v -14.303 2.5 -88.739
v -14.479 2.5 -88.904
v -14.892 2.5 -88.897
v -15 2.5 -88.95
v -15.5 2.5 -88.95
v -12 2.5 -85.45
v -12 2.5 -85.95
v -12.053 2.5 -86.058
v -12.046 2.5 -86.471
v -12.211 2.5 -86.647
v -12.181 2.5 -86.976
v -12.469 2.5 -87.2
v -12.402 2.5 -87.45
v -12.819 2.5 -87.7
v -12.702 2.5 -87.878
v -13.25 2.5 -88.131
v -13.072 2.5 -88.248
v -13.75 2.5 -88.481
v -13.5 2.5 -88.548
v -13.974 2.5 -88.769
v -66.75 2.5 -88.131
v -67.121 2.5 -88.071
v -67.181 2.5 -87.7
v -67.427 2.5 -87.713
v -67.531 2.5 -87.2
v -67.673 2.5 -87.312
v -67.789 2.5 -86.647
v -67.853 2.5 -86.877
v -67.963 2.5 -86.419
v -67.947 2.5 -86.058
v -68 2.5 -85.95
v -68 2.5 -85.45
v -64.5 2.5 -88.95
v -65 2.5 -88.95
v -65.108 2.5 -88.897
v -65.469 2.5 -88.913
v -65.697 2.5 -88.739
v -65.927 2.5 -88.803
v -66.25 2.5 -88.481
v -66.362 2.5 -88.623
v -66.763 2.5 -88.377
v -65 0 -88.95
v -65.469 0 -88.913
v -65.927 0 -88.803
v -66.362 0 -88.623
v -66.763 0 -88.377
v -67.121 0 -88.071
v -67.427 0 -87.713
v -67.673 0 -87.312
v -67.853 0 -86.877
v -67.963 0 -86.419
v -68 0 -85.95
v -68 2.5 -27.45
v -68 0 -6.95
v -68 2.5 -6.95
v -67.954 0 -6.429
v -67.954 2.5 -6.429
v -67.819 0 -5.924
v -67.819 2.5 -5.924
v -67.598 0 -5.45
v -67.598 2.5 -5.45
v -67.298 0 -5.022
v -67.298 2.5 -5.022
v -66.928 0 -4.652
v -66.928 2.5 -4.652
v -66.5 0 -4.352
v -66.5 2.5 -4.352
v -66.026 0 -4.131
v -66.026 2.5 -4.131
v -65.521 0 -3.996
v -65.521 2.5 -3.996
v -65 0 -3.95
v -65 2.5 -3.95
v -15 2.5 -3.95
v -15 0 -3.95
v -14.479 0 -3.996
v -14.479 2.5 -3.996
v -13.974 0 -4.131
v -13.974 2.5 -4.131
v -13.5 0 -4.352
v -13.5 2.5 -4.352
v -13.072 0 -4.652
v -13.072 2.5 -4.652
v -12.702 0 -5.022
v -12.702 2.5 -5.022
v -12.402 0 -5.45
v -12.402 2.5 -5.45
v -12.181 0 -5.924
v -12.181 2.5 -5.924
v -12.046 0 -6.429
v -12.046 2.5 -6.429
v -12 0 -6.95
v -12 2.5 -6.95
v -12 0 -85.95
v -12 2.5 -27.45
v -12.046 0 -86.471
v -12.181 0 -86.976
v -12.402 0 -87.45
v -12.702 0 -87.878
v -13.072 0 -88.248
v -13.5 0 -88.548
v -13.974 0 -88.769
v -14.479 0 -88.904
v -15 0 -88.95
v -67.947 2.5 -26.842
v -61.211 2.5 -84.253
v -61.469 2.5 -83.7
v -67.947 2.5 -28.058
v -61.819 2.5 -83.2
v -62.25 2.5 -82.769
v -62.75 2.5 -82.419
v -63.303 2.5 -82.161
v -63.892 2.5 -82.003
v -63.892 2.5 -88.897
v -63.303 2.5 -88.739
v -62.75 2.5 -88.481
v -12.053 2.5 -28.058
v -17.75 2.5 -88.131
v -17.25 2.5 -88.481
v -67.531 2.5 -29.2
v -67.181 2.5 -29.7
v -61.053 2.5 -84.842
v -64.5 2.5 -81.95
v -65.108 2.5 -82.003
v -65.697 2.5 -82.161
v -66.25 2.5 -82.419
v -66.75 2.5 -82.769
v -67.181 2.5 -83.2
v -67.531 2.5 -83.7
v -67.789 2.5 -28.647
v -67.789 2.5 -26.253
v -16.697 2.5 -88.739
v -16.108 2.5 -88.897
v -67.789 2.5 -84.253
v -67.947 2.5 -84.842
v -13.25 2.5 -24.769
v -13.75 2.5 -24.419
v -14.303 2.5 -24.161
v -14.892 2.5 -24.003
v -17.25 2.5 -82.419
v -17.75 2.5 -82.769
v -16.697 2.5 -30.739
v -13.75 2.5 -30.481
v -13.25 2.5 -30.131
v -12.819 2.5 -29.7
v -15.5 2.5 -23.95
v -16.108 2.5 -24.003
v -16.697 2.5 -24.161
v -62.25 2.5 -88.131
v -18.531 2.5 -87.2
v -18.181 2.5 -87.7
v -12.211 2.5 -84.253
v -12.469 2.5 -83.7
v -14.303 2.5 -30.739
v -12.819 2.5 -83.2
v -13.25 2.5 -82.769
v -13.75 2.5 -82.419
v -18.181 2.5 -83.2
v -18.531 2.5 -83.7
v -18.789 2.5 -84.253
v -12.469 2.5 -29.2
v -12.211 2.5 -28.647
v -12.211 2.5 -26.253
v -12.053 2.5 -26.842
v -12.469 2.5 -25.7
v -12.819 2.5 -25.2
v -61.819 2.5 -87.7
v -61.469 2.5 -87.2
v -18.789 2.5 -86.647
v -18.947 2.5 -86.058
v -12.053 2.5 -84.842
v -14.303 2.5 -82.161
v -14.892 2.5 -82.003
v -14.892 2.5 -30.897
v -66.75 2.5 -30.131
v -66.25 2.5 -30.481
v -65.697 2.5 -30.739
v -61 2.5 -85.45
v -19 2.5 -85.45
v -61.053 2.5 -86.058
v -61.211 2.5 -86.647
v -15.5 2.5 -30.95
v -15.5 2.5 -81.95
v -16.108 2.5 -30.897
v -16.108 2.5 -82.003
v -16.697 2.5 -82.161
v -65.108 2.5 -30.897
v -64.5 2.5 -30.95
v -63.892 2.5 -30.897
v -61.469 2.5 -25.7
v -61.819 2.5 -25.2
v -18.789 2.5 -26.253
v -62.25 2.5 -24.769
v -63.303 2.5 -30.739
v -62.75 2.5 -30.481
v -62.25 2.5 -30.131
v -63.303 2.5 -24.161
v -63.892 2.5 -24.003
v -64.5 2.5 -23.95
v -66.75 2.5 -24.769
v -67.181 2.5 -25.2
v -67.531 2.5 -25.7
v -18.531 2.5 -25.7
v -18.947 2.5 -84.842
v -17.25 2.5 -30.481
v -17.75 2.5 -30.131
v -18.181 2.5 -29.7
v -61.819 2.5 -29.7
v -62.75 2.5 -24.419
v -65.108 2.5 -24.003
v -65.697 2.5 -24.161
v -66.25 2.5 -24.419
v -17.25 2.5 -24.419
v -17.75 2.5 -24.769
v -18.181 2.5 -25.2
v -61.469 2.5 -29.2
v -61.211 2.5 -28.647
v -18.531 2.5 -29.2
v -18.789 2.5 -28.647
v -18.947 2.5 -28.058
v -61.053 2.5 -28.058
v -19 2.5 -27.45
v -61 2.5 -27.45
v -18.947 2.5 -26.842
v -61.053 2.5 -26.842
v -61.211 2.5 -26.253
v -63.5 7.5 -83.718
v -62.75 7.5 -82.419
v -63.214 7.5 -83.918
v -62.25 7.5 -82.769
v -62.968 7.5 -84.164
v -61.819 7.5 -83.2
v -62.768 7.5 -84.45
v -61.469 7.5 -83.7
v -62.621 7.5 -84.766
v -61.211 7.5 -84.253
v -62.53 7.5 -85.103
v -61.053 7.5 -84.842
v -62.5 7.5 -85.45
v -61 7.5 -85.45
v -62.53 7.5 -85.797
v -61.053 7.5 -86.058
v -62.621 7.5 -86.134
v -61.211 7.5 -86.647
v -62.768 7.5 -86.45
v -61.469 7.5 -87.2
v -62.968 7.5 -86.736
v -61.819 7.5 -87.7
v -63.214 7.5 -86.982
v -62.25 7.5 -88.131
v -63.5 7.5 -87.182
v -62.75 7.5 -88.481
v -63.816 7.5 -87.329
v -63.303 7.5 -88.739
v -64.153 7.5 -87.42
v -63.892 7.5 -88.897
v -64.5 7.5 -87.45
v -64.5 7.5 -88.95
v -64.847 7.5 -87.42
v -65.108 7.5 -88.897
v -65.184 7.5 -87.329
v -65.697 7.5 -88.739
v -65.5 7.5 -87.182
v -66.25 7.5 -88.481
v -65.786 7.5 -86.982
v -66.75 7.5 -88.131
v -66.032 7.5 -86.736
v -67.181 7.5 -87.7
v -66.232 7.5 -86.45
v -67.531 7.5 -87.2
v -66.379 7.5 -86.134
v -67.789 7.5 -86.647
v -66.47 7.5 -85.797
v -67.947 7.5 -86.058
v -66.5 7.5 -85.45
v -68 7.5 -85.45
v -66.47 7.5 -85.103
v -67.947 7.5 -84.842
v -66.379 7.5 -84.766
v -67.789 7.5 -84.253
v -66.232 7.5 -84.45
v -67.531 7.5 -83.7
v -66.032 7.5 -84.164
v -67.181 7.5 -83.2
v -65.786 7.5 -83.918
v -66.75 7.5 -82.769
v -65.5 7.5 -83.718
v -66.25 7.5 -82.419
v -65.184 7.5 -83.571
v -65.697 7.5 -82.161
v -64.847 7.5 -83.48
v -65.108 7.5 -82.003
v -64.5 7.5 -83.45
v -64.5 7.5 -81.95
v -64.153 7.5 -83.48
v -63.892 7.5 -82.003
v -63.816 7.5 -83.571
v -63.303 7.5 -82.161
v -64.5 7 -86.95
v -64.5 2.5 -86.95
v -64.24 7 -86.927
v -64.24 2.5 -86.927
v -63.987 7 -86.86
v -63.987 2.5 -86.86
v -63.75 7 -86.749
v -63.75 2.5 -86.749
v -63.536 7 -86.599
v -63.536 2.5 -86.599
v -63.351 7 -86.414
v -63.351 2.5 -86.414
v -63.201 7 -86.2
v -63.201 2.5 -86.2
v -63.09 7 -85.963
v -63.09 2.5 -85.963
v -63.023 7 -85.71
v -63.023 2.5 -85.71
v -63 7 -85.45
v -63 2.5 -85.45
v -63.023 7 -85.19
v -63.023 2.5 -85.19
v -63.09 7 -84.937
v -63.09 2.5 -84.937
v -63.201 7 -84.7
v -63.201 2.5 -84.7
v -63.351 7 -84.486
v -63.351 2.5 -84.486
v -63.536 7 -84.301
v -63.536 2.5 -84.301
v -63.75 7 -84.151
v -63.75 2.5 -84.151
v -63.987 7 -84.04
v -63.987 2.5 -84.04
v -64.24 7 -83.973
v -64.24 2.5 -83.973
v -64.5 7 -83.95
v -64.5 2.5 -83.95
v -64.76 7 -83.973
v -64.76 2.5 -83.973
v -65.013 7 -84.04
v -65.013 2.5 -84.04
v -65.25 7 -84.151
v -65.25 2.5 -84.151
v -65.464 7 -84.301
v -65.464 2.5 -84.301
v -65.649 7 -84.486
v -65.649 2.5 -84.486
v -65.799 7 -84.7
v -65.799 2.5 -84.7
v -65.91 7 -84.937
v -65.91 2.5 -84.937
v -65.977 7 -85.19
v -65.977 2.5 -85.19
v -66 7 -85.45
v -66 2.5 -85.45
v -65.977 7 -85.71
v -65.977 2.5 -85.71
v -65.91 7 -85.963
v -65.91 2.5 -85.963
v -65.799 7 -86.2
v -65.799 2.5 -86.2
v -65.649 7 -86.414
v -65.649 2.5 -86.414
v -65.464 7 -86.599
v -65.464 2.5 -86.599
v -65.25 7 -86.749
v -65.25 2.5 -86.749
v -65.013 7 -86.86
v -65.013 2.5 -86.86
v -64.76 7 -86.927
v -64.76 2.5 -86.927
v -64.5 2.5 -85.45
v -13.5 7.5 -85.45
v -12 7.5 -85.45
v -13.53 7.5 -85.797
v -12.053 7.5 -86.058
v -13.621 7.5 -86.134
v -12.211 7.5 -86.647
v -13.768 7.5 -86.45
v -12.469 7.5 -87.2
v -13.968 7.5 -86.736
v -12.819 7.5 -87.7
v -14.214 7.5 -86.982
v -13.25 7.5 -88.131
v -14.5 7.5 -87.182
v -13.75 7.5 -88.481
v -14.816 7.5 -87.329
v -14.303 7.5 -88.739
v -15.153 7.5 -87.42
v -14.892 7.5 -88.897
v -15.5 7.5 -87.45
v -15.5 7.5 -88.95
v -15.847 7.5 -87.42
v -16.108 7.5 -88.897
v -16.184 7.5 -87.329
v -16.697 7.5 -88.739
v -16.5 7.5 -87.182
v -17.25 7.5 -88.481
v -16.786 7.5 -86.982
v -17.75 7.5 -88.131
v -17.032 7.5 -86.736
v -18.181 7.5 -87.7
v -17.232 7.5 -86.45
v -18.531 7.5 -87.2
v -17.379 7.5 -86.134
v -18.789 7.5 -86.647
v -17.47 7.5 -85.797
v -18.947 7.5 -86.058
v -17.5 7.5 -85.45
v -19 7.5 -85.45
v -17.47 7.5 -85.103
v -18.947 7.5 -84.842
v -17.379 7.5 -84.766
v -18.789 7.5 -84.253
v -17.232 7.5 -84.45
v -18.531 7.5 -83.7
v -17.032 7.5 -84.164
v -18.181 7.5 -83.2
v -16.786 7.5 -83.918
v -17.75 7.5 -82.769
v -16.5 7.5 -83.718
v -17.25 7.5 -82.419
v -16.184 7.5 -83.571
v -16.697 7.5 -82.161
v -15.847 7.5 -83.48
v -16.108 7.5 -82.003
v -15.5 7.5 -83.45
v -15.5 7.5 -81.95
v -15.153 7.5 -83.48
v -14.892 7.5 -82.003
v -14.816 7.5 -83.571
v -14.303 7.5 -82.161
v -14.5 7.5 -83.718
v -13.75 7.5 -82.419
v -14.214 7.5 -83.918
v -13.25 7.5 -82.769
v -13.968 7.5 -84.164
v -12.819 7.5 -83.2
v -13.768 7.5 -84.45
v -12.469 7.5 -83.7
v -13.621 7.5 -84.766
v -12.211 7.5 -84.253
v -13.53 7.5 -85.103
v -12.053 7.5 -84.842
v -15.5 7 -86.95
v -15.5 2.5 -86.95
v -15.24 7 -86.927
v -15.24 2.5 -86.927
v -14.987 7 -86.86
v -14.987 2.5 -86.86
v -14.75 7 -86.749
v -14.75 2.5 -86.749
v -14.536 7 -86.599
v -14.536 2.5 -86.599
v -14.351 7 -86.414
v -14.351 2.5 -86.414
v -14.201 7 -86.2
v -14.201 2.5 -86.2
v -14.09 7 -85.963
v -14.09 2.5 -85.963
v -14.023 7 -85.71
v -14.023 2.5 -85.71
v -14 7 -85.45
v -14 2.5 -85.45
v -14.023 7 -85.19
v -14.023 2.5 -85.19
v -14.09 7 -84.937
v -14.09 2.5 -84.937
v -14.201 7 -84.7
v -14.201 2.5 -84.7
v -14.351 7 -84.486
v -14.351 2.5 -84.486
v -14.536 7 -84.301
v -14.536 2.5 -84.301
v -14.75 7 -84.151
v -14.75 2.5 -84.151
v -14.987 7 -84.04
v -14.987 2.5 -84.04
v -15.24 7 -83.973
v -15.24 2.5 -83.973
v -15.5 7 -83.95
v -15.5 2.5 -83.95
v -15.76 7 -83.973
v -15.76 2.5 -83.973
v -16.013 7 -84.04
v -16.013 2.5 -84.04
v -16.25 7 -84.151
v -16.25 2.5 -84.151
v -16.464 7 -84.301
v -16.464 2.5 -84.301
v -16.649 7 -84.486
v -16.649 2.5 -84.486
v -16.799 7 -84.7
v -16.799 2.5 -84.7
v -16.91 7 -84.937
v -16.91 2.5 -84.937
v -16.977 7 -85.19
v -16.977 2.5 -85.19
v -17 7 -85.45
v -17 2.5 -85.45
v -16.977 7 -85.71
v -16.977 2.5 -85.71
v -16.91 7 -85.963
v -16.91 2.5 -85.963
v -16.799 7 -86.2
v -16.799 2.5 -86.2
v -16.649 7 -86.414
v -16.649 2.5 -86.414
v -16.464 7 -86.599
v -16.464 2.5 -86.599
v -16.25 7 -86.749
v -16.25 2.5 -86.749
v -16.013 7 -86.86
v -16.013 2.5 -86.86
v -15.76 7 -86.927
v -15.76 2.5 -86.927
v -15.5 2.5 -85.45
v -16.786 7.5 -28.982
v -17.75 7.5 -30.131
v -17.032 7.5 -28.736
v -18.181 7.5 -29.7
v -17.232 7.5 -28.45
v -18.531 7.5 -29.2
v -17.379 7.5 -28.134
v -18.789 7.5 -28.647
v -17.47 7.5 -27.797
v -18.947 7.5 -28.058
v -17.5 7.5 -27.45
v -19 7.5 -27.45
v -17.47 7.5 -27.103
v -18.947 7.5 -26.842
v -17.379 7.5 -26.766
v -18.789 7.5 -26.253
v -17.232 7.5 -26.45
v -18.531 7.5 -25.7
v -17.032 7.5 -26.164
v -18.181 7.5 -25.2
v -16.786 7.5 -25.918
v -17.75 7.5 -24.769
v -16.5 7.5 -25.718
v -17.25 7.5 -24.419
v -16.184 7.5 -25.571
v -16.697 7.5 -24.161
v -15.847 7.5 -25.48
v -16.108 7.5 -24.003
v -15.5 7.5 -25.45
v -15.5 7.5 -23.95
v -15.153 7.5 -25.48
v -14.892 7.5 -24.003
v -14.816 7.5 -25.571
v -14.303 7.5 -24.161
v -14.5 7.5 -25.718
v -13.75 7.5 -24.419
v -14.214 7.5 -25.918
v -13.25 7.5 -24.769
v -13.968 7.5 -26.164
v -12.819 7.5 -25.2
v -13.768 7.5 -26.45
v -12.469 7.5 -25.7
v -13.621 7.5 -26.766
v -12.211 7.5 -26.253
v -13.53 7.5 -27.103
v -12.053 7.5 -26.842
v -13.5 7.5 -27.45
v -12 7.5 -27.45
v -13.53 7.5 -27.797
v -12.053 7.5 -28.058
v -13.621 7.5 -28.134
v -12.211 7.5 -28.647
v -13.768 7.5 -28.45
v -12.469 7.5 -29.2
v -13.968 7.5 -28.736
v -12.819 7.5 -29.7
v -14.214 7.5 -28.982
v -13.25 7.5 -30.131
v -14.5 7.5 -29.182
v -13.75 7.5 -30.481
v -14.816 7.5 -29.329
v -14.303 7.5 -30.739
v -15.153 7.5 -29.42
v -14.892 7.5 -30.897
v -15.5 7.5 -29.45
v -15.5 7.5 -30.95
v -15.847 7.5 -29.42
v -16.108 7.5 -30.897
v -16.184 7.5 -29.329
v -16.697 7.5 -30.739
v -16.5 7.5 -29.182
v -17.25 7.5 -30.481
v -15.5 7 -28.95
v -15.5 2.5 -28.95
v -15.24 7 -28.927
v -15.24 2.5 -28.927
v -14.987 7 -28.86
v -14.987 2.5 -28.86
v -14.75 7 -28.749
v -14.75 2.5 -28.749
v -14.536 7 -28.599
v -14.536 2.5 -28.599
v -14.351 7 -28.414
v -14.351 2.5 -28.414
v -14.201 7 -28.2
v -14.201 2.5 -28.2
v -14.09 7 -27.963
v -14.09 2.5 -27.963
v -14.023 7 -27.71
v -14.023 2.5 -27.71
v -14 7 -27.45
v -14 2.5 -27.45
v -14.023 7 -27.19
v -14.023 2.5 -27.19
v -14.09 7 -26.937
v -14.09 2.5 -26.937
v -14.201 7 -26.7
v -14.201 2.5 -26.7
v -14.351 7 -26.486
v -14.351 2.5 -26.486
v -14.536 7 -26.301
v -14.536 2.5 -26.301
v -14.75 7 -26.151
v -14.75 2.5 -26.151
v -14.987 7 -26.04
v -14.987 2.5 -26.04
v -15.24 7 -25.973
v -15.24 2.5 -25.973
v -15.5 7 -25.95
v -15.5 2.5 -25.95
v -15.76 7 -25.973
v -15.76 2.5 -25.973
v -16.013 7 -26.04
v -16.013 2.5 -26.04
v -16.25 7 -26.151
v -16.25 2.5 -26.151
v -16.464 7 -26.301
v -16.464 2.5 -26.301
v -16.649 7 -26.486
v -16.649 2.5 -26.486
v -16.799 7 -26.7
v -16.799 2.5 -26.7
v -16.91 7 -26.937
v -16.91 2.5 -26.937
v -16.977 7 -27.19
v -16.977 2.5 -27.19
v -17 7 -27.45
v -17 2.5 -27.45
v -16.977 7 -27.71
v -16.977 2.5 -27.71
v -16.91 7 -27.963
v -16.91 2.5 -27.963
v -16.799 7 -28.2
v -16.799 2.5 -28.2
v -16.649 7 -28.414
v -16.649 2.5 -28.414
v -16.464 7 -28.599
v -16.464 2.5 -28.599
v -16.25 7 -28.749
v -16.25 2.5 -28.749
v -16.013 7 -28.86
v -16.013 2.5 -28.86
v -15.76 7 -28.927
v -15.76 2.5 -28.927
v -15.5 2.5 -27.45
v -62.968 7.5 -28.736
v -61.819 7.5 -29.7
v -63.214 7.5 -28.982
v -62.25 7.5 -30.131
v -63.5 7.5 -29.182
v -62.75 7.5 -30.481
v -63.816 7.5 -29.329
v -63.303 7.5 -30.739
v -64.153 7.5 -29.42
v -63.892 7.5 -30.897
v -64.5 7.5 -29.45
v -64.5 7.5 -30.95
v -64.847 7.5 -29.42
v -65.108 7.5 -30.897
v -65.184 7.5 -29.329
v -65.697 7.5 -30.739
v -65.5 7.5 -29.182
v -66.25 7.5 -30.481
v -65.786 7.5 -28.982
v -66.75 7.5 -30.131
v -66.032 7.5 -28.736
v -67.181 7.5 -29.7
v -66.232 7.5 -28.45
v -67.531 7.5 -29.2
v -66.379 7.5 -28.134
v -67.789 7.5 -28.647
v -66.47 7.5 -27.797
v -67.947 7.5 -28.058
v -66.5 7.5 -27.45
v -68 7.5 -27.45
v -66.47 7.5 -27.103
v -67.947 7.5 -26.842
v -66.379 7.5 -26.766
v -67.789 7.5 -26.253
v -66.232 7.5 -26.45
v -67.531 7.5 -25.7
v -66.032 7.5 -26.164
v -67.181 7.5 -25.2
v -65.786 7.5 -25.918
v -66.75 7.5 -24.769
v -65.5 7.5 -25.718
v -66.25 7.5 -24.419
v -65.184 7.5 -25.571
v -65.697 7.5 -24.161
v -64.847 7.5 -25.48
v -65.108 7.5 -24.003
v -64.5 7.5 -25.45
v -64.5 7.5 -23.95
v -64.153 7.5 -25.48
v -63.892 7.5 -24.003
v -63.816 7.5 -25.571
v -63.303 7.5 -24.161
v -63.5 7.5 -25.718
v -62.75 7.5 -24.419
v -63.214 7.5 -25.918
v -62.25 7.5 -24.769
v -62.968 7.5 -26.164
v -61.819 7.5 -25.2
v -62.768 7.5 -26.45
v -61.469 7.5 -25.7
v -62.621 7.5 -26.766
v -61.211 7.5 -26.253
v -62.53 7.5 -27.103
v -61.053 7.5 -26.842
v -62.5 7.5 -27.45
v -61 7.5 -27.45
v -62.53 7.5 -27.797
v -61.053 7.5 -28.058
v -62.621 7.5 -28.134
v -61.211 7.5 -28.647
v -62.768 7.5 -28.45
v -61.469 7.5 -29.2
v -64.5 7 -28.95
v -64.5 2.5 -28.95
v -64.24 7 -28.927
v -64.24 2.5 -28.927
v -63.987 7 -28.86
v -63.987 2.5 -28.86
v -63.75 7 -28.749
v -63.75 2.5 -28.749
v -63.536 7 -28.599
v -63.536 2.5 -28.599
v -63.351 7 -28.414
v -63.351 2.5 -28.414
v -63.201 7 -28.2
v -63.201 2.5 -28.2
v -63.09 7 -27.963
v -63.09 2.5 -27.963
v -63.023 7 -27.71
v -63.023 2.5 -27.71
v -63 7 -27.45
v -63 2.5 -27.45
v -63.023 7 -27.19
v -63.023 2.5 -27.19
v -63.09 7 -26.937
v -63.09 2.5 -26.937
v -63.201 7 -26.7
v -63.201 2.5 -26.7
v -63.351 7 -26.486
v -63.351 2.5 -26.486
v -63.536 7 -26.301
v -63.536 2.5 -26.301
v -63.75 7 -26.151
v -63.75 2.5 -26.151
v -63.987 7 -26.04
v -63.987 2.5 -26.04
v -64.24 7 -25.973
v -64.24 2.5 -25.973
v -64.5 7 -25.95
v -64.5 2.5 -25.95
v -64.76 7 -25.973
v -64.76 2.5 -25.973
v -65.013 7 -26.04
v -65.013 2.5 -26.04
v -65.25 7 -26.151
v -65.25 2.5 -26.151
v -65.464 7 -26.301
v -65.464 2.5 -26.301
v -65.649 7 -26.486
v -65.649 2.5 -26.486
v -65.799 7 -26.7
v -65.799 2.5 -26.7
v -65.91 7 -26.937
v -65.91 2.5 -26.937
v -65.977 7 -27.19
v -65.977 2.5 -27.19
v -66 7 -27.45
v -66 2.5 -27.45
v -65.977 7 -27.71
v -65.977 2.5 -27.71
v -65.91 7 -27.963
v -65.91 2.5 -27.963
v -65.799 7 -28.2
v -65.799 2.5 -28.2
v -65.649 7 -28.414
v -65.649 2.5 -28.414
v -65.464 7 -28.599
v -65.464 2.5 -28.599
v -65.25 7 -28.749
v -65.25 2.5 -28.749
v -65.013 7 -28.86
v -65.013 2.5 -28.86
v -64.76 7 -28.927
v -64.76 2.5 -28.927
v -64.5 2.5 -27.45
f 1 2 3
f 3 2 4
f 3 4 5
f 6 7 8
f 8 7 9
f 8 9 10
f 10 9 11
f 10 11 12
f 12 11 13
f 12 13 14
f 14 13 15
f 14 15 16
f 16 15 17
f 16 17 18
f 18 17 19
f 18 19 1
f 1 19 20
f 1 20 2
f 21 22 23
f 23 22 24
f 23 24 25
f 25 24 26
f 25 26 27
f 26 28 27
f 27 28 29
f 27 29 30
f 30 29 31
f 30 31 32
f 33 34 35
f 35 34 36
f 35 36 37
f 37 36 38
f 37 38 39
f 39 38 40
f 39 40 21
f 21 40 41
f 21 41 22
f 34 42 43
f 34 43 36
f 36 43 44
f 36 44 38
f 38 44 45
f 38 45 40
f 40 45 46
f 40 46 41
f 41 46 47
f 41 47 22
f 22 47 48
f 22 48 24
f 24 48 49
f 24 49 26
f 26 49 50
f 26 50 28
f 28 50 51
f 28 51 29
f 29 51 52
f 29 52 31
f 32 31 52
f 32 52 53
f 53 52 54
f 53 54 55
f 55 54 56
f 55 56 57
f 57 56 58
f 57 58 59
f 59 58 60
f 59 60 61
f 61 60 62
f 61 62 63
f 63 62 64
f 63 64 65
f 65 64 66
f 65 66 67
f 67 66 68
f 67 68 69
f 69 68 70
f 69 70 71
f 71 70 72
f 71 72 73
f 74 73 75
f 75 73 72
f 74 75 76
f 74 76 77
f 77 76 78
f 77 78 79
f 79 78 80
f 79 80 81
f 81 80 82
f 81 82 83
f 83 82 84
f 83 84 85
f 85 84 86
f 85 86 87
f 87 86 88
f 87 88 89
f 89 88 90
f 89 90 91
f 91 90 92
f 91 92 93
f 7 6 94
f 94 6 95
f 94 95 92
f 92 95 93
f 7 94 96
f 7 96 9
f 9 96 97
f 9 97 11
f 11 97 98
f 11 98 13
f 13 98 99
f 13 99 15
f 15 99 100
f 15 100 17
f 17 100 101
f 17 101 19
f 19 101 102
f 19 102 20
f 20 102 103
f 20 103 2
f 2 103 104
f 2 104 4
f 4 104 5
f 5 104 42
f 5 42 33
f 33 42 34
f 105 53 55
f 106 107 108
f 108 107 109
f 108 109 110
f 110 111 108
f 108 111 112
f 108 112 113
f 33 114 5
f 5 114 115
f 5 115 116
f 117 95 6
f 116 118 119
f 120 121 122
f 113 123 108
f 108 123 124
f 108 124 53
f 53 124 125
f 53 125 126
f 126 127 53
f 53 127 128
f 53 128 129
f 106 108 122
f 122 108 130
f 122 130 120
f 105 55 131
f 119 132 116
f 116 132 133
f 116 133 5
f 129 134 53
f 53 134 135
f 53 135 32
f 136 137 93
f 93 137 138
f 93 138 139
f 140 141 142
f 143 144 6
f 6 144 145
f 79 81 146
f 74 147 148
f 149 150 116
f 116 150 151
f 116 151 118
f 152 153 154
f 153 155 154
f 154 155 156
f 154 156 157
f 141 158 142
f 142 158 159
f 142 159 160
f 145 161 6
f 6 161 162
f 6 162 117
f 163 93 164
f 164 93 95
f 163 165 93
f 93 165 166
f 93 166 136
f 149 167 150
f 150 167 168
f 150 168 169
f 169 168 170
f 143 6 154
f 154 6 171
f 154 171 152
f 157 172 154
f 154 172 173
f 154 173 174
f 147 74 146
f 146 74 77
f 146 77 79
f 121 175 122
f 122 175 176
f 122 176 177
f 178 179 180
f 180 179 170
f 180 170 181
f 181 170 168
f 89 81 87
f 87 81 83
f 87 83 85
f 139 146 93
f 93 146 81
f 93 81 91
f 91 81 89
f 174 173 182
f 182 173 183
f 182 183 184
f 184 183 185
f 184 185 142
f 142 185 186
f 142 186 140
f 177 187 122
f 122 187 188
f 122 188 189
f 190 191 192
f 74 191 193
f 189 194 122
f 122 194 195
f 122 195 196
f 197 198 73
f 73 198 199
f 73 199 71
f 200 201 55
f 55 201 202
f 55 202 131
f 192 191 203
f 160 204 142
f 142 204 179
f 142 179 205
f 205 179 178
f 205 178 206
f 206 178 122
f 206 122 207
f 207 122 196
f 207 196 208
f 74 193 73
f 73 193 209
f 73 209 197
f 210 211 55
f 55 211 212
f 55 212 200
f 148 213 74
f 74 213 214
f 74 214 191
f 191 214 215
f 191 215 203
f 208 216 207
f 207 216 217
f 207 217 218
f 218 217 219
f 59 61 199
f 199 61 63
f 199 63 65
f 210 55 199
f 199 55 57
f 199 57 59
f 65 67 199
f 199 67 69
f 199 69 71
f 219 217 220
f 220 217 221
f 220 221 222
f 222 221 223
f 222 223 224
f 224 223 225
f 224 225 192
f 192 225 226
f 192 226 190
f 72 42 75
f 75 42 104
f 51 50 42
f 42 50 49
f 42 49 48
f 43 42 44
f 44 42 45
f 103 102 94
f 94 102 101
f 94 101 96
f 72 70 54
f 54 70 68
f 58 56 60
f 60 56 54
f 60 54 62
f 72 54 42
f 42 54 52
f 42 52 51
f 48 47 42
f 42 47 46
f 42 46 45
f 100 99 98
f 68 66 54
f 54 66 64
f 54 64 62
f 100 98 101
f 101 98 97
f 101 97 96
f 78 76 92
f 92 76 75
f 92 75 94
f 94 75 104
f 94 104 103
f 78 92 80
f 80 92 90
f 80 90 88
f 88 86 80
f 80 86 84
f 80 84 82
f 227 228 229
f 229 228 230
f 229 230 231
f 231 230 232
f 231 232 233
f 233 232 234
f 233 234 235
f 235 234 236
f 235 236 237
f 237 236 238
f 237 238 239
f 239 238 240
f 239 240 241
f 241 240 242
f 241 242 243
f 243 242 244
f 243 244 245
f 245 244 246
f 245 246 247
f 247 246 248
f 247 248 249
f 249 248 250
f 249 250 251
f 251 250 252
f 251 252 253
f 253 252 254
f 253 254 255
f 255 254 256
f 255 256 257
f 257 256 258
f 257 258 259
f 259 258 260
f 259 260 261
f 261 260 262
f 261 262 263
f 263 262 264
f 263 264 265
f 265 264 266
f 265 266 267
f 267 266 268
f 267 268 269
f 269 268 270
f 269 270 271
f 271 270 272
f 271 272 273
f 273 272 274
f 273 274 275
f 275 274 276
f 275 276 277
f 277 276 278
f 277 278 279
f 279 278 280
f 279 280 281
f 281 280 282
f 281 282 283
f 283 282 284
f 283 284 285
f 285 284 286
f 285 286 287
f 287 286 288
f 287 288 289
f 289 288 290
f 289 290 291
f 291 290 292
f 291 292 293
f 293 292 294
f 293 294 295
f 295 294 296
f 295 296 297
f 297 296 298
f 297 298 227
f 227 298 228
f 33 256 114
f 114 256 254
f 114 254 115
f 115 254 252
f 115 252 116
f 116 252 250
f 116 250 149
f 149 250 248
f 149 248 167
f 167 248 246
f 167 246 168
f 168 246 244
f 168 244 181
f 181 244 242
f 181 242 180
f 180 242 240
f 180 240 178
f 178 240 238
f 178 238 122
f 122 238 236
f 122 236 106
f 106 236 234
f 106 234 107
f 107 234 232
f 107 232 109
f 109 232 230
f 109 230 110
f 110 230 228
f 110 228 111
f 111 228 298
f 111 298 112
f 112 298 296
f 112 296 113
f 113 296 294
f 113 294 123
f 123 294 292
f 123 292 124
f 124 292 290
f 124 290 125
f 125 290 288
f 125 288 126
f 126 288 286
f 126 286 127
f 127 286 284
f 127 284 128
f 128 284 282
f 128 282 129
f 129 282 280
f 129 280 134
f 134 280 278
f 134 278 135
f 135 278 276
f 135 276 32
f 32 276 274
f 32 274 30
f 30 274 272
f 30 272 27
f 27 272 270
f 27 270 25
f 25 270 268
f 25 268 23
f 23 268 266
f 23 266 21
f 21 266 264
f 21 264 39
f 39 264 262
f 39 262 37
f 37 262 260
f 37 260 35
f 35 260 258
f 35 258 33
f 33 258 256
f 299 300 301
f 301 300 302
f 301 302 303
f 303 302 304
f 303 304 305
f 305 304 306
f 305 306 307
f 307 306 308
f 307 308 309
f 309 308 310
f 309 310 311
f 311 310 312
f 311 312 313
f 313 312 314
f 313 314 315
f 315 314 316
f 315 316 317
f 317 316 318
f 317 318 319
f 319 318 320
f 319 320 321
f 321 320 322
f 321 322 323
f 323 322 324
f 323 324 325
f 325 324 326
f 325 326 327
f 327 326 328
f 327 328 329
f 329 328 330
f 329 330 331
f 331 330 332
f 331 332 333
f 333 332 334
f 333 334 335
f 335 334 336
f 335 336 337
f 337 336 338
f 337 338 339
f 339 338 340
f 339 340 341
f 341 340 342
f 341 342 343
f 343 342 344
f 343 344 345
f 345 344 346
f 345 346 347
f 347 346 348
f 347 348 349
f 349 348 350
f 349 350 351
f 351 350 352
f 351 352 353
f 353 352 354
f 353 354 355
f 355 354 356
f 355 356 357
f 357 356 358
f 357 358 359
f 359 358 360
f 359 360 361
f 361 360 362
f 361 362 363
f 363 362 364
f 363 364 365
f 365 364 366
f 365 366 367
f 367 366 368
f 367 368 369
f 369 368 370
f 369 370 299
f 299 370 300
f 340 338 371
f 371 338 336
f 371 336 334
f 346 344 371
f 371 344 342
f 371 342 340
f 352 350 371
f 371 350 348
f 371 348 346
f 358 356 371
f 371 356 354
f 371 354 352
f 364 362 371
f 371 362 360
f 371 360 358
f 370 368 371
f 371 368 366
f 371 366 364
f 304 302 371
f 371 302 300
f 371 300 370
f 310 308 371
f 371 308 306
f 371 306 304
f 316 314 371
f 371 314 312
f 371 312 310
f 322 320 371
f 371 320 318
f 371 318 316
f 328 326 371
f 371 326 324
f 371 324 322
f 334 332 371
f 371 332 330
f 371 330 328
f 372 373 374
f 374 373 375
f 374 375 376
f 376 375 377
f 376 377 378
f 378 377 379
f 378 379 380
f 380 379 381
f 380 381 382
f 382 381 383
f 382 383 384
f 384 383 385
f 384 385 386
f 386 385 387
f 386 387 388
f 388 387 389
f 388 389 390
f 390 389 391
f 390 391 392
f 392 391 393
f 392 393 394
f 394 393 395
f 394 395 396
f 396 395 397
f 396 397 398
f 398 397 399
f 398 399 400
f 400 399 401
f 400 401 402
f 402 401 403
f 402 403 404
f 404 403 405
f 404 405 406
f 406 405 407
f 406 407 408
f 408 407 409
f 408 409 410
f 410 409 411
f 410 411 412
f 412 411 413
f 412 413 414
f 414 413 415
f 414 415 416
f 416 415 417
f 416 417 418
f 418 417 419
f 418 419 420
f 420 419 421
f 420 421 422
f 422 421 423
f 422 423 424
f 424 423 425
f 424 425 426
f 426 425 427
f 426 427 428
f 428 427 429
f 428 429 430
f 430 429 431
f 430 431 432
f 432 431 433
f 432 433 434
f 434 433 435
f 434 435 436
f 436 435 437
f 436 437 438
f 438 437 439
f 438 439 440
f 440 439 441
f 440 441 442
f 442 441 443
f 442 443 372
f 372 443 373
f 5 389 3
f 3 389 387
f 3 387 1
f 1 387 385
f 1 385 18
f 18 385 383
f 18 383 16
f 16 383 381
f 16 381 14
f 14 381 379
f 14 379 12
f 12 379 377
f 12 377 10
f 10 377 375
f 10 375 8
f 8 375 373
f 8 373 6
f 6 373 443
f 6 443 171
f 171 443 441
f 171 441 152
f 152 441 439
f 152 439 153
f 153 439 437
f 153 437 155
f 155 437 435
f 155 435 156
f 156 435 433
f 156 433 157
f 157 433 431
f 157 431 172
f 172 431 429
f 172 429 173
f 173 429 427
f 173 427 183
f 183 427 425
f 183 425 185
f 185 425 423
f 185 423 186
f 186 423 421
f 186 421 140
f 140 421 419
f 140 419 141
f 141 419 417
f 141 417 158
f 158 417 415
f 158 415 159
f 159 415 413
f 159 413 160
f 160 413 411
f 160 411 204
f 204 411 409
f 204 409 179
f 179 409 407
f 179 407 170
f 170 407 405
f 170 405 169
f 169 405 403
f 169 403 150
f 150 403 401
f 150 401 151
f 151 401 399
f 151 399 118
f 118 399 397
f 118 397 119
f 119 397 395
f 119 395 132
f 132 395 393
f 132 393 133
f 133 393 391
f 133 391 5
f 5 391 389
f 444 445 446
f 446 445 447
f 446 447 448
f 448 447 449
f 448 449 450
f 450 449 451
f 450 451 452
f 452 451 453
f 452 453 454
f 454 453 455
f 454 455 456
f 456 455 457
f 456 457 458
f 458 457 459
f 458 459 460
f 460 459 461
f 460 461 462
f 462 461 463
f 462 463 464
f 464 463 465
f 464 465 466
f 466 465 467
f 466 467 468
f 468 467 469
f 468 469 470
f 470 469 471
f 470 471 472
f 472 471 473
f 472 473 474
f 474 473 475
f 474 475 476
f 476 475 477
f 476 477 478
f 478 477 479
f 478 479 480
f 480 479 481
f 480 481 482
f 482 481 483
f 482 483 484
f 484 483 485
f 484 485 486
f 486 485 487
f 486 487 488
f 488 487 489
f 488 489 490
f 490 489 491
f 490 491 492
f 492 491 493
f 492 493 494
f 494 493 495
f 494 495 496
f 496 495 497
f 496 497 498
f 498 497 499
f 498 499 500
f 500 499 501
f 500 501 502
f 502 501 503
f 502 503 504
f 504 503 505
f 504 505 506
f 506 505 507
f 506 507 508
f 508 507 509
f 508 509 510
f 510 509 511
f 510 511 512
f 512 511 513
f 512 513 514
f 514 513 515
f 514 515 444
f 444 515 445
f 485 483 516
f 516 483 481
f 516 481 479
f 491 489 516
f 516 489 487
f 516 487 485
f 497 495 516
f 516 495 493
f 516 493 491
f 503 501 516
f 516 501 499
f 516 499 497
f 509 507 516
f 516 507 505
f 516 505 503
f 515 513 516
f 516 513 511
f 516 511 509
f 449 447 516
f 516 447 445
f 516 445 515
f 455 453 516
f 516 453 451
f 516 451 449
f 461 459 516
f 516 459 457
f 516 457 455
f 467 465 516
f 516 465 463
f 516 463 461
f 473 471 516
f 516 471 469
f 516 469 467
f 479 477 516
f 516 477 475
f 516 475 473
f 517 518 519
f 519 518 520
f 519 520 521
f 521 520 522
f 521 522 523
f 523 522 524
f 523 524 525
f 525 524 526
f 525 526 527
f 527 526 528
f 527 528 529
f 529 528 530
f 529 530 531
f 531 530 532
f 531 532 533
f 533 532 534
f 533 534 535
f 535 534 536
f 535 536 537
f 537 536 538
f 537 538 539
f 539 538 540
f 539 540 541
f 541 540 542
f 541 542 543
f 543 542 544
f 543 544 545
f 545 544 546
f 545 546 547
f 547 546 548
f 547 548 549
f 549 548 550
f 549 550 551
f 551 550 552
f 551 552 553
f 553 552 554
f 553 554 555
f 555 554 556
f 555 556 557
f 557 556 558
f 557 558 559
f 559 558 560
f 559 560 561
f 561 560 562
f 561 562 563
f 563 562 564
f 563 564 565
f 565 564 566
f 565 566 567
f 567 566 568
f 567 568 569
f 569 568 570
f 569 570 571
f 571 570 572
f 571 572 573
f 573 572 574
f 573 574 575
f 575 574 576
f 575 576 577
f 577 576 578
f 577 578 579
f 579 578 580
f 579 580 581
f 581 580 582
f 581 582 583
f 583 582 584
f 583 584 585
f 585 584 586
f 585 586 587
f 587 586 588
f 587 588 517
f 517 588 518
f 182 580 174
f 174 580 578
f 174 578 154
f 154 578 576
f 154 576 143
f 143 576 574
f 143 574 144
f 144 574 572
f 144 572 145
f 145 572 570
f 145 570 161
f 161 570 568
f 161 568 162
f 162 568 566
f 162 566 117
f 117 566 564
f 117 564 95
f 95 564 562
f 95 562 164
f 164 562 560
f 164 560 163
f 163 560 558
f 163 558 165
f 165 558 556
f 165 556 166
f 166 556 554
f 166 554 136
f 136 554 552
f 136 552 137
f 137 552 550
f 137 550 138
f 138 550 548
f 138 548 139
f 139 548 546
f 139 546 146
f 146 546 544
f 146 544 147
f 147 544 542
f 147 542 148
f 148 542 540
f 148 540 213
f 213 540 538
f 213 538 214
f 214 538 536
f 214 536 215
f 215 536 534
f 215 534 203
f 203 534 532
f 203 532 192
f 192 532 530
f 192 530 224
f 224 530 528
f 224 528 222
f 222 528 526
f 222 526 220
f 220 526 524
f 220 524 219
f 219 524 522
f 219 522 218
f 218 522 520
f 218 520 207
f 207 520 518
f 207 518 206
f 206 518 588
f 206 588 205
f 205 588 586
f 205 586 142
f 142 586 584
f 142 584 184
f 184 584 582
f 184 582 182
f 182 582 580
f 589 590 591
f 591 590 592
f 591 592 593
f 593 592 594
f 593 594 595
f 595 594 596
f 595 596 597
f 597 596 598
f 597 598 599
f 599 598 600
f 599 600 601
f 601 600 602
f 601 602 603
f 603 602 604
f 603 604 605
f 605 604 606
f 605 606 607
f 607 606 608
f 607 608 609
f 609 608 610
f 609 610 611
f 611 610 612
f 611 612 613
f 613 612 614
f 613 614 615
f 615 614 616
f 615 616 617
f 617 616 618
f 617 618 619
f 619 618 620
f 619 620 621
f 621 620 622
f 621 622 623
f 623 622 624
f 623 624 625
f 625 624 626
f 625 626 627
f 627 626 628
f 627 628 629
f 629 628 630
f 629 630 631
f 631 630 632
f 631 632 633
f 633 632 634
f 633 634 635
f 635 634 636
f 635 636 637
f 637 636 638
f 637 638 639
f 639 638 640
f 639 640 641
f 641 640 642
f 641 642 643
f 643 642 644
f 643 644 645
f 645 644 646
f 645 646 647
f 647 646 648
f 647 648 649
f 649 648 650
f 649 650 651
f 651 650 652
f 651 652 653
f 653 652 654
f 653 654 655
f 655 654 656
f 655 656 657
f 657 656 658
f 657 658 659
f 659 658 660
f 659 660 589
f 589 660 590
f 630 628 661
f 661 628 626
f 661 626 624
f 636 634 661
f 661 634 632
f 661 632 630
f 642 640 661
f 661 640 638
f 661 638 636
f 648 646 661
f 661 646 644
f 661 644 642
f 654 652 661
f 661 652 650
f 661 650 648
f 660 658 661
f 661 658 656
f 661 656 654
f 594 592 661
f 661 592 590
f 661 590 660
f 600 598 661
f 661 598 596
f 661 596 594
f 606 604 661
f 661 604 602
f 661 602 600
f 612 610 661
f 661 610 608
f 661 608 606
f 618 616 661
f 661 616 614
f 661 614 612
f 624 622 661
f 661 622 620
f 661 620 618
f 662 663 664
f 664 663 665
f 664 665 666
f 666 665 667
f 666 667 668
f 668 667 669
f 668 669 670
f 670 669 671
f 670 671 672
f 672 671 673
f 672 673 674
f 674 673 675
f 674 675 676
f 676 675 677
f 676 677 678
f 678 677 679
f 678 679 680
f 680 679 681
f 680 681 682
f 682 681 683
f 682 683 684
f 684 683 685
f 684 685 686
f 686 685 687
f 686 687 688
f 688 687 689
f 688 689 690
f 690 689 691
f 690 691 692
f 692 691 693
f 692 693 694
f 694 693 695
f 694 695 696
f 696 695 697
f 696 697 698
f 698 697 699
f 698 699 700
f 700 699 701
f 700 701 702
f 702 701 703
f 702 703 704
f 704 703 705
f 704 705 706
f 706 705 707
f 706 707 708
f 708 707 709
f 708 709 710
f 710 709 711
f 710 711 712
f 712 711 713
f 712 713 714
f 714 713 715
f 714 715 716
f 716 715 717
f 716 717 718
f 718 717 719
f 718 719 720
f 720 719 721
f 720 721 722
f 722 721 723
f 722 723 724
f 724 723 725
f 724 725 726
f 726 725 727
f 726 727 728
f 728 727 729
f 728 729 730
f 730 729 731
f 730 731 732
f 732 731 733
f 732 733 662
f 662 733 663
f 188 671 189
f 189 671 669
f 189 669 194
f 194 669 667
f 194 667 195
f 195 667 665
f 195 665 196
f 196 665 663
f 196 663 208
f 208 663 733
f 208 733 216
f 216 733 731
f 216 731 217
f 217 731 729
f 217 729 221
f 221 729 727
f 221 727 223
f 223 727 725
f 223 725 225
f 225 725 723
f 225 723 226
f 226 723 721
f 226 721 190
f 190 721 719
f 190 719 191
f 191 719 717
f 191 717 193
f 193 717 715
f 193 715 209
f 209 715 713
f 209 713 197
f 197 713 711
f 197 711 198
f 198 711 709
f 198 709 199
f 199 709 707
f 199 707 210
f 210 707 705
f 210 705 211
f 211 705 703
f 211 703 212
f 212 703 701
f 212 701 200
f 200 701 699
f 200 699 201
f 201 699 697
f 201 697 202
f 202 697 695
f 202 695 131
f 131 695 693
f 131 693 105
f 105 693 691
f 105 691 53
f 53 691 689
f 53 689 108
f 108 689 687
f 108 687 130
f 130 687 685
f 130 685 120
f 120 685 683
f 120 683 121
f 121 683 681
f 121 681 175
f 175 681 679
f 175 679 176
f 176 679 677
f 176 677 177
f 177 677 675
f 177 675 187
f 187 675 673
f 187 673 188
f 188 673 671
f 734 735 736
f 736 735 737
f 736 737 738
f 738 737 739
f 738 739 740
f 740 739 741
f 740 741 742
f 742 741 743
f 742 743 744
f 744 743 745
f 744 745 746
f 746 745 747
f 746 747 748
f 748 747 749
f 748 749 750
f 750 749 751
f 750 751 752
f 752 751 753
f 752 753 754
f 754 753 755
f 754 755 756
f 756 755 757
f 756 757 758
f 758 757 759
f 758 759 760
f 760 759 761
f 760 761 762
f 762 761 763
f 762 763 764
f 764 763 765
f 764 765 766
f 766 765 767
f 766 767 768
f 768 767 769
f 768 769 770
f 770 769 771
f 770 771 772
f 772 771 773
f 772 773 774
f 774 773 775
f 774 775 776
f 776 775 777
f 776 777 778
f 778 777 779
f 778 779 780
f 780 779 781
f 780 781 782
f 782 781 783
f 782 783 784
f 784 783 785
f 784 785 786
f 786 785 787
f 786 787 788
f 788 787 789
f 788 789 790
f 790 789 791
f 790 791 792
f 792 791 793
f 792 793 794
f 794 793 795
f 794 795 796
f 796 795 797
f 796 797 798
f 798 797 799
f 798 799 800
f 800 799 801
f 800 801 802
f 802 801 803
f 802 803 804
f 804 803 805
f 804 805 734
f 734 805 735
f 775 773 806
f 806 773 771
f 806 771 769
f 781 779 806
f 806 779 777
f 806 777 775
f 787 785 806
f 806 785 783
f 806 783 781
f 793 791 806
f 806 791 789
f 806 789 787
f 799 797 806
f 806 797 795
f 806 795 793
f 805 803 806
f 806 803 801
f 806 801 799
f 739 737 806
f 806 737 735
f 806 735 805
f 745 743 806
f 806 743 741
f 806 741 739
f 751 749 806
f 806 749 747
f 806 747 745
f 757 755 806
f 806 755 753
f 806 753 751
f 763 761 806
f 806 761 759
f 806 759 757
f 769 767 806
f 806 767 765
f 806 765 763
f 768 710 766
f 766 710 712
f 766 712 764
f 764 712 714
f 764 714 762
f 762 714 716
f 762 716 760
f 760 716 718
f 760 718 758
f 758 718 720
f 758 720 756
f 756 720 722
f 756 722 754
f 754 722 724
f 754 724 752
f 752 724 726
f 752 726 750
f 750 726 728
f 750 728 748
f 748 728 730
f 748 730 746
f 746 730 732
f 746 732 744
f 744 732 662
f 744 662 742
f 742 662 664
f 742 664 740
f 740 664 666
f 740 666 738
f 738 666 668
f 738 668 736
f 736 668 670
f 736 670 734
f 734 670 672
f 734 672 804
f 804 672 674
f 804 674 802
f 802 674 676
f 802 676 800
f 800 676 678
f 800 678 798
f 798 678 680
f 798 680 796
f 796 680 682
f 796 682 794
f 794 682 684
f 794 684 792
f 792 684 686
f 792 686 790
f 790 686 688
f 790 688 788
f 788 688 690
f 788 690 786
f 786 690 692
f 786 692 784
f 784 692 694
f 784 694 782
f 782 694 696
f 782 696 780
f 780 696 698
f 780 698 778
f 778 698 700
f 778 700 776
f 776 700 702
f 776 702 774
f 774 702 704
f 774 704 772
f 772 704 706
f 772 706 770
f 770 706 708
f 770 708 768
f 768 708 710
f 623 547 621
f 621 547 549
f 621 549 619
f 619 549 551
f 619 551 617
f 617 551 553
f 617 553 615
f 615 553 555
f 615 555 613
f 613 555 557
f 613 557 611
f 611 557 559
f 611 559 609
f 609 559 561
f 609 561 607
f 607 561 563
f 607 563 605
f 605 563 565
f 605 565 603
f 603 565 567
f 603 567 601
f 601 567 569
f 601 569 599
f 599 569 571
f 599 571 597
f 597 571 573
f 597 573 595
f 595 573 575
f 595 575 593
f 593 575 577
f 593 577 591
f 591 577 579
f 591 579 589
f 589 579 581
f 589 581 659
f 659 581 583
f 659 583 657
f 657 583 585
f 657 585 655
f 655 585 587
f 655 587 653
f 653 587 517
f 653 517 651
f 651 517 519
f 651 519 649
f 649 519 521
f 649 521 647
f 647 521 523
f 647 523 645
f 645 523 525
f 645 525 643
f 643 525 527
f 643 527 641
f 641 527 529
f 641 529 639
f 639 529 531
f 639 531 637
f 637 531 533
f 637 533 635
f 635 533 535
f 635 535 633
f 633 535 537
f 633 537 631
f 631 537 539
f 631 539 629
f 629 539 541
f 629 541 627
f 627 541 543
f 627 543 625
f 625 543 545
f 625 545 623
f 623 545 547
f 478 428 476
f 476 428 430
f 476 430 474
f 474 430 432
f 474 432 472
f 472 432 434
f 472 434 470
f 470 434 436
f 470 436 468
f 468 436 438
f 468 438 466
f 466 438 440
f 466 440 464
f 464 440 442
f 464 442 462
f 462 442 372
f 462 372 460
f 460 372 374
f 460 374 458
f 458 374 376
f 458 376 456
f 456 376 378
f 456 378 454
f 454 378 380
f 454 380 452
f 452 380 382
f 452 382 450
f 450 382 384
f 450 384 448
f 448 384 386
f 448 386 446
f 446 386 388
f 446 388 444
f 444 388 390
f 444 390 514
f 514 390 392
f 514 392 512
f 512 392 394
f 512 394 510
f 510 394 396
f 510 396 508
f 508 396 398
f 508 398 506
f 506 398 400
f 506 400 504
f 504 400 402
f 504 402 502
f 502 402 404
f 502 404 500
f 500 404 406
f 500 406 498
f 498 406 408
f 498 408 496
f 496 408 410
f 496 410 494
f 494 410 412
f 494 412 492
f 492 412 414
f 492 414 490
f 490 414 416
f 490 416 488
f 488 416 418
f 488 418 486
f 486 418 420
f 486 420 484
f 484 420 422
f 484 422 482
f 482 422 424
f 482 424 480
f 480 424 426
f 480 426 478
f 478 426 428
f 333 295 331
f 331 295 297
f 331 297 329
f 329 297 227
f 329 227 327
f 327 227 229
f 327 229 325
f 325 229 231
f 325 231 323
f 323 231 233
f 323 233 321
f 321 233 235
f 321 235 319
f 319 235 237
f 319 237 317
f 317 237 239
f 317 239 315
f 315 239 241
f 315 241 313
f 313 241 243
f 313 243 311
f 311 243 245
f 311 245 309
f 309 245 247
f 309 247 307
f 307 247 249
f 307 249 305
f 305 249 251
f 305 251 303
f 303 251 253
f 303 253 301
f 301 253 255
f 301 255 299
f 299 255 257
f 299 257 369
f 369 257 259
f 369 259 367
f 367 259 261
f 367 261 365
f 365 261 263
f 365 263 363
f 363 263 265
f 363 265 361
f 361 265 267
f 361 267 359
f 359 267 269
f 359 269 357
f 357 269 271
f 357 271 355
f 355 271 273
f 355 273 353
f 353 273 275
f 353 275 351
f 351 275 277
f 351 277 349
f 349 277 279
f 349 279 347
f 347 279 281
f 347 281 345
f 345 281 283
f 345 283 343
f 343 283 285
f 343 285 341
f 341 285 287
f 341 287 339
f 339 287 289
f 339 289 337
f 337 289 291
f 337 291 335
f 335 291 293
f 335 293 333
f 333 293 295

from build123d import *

# Parameters (mm, degrees)
BOSS_EXTRUDE1_DEPTH = 2.5
SKETCH3_R           = 3.5
SKETCH3_R_2         = 1.5
BOSS_EXTRUDE2_DEPTH = 5
CHAMFER1_SIZE       = 0.5


with BuildPart() as part:
    # Sketch2 → Boss-Extrude1 (new body)
    with BuildSketch(Plane(origin=(0, 0, 0), x_dir=(1, 0, 0), z_dir=(0, 1, 0))):
        with BuildLine():
            Line((-68, 85.95), (-68, 6.95))
            ThreePointArc((-68, 6.95), (-67.121320344, 4.828679656), (-65, 3.95))
            Line((-65, 3.95), (-15, 3.95))
            ThreePointArc((-15, 3.95), (-12.878679656, 4.828679656), (-12, 6.95))
            Line((-12, 6.95), (-12, 85.95))
            ThreePointArc((-12, 85.95), (-12.878679656, 88.071320344), (-15, 88.95))
            Line((-15, 88.95), (-65, 88.95))
            ThreePointArc((-65, 88.95), (-67.121320344, 88.071320344), (-68, 85.95))
        make_face()
    extrude(amount=BOSS_EXTRUDE1_DEPTH)

    # Sketch3 → Boss-Extrude2 (add)
    # profile 1 of 4: a face of its own
    with BuildSketch(Plane(origin=(0, 2.5, 0), x_dir=(1, 0, 0), z_dir=(0, 1, 0))):
        with Locations((-64.5, 85.45)):
            Circle(SKETCH3_R)
        with Locations((-64.5, 85.45)):
            Circle(SKETCH3_R_2, mode=Mode.SUBTRACT)
    # profile 2 of 4: a face of its own
    with BuildSketch(Plane(origin=(0, 2.5, 0), x_dir=(1, 0, 0), z_dir=(0, 1, 0))):
        with Locations((-15.5, 85.45)):
            Circle(SKETCH3_R)
        with Locations((-15.5, 85.45)):
            Circle(SKETCH3_R_2, mode=Mode.SUBTRACT)
    # profile 3 of 4: a face of its own
    with BuildSketch(Plane(origin=(0, 2.5, 0), x_dir=(1, 0, 0), z_dir=(0, 1, 0))):
        with Locations((-15.5, 27.45)):
            Circle(SKETCH3_R)
        with Locations((-15.5, 27.45)):
            Circle(SKETCH3_R_2, mode=Mode.SUBTRACT)
    # profile 4 of 4: a face of its own
    with BuildSketch(Plane(origin=(0, 2.5, 0), x_dir=(1, 0, 0), z_dir=(0, 1, 0))):
        with Locations((-64.5, 27.45)):
            Circle(SKETCH3_R)
        with Locations((-64.5, 27.45)):
            Circle(SKETCH3_R_2, mode=Mode.SUBTRACT)
    extrude(amount=BOSS_EXTRUDE2_DEPTH)

    # Chamfer1
    chamfer1_edges = [part.edges().sort_by_distance(p)[0] for p in [
        (-66, 7.5, -27.45),
        (-17, 7.5, -27.45),
        (-17, 7.5, -85.45),
        (-66, 7.5, -85.45),
    ]]
    chamfer(chamfer1_edges, length=CHAMFER1_SIZE)


solid = part.part
